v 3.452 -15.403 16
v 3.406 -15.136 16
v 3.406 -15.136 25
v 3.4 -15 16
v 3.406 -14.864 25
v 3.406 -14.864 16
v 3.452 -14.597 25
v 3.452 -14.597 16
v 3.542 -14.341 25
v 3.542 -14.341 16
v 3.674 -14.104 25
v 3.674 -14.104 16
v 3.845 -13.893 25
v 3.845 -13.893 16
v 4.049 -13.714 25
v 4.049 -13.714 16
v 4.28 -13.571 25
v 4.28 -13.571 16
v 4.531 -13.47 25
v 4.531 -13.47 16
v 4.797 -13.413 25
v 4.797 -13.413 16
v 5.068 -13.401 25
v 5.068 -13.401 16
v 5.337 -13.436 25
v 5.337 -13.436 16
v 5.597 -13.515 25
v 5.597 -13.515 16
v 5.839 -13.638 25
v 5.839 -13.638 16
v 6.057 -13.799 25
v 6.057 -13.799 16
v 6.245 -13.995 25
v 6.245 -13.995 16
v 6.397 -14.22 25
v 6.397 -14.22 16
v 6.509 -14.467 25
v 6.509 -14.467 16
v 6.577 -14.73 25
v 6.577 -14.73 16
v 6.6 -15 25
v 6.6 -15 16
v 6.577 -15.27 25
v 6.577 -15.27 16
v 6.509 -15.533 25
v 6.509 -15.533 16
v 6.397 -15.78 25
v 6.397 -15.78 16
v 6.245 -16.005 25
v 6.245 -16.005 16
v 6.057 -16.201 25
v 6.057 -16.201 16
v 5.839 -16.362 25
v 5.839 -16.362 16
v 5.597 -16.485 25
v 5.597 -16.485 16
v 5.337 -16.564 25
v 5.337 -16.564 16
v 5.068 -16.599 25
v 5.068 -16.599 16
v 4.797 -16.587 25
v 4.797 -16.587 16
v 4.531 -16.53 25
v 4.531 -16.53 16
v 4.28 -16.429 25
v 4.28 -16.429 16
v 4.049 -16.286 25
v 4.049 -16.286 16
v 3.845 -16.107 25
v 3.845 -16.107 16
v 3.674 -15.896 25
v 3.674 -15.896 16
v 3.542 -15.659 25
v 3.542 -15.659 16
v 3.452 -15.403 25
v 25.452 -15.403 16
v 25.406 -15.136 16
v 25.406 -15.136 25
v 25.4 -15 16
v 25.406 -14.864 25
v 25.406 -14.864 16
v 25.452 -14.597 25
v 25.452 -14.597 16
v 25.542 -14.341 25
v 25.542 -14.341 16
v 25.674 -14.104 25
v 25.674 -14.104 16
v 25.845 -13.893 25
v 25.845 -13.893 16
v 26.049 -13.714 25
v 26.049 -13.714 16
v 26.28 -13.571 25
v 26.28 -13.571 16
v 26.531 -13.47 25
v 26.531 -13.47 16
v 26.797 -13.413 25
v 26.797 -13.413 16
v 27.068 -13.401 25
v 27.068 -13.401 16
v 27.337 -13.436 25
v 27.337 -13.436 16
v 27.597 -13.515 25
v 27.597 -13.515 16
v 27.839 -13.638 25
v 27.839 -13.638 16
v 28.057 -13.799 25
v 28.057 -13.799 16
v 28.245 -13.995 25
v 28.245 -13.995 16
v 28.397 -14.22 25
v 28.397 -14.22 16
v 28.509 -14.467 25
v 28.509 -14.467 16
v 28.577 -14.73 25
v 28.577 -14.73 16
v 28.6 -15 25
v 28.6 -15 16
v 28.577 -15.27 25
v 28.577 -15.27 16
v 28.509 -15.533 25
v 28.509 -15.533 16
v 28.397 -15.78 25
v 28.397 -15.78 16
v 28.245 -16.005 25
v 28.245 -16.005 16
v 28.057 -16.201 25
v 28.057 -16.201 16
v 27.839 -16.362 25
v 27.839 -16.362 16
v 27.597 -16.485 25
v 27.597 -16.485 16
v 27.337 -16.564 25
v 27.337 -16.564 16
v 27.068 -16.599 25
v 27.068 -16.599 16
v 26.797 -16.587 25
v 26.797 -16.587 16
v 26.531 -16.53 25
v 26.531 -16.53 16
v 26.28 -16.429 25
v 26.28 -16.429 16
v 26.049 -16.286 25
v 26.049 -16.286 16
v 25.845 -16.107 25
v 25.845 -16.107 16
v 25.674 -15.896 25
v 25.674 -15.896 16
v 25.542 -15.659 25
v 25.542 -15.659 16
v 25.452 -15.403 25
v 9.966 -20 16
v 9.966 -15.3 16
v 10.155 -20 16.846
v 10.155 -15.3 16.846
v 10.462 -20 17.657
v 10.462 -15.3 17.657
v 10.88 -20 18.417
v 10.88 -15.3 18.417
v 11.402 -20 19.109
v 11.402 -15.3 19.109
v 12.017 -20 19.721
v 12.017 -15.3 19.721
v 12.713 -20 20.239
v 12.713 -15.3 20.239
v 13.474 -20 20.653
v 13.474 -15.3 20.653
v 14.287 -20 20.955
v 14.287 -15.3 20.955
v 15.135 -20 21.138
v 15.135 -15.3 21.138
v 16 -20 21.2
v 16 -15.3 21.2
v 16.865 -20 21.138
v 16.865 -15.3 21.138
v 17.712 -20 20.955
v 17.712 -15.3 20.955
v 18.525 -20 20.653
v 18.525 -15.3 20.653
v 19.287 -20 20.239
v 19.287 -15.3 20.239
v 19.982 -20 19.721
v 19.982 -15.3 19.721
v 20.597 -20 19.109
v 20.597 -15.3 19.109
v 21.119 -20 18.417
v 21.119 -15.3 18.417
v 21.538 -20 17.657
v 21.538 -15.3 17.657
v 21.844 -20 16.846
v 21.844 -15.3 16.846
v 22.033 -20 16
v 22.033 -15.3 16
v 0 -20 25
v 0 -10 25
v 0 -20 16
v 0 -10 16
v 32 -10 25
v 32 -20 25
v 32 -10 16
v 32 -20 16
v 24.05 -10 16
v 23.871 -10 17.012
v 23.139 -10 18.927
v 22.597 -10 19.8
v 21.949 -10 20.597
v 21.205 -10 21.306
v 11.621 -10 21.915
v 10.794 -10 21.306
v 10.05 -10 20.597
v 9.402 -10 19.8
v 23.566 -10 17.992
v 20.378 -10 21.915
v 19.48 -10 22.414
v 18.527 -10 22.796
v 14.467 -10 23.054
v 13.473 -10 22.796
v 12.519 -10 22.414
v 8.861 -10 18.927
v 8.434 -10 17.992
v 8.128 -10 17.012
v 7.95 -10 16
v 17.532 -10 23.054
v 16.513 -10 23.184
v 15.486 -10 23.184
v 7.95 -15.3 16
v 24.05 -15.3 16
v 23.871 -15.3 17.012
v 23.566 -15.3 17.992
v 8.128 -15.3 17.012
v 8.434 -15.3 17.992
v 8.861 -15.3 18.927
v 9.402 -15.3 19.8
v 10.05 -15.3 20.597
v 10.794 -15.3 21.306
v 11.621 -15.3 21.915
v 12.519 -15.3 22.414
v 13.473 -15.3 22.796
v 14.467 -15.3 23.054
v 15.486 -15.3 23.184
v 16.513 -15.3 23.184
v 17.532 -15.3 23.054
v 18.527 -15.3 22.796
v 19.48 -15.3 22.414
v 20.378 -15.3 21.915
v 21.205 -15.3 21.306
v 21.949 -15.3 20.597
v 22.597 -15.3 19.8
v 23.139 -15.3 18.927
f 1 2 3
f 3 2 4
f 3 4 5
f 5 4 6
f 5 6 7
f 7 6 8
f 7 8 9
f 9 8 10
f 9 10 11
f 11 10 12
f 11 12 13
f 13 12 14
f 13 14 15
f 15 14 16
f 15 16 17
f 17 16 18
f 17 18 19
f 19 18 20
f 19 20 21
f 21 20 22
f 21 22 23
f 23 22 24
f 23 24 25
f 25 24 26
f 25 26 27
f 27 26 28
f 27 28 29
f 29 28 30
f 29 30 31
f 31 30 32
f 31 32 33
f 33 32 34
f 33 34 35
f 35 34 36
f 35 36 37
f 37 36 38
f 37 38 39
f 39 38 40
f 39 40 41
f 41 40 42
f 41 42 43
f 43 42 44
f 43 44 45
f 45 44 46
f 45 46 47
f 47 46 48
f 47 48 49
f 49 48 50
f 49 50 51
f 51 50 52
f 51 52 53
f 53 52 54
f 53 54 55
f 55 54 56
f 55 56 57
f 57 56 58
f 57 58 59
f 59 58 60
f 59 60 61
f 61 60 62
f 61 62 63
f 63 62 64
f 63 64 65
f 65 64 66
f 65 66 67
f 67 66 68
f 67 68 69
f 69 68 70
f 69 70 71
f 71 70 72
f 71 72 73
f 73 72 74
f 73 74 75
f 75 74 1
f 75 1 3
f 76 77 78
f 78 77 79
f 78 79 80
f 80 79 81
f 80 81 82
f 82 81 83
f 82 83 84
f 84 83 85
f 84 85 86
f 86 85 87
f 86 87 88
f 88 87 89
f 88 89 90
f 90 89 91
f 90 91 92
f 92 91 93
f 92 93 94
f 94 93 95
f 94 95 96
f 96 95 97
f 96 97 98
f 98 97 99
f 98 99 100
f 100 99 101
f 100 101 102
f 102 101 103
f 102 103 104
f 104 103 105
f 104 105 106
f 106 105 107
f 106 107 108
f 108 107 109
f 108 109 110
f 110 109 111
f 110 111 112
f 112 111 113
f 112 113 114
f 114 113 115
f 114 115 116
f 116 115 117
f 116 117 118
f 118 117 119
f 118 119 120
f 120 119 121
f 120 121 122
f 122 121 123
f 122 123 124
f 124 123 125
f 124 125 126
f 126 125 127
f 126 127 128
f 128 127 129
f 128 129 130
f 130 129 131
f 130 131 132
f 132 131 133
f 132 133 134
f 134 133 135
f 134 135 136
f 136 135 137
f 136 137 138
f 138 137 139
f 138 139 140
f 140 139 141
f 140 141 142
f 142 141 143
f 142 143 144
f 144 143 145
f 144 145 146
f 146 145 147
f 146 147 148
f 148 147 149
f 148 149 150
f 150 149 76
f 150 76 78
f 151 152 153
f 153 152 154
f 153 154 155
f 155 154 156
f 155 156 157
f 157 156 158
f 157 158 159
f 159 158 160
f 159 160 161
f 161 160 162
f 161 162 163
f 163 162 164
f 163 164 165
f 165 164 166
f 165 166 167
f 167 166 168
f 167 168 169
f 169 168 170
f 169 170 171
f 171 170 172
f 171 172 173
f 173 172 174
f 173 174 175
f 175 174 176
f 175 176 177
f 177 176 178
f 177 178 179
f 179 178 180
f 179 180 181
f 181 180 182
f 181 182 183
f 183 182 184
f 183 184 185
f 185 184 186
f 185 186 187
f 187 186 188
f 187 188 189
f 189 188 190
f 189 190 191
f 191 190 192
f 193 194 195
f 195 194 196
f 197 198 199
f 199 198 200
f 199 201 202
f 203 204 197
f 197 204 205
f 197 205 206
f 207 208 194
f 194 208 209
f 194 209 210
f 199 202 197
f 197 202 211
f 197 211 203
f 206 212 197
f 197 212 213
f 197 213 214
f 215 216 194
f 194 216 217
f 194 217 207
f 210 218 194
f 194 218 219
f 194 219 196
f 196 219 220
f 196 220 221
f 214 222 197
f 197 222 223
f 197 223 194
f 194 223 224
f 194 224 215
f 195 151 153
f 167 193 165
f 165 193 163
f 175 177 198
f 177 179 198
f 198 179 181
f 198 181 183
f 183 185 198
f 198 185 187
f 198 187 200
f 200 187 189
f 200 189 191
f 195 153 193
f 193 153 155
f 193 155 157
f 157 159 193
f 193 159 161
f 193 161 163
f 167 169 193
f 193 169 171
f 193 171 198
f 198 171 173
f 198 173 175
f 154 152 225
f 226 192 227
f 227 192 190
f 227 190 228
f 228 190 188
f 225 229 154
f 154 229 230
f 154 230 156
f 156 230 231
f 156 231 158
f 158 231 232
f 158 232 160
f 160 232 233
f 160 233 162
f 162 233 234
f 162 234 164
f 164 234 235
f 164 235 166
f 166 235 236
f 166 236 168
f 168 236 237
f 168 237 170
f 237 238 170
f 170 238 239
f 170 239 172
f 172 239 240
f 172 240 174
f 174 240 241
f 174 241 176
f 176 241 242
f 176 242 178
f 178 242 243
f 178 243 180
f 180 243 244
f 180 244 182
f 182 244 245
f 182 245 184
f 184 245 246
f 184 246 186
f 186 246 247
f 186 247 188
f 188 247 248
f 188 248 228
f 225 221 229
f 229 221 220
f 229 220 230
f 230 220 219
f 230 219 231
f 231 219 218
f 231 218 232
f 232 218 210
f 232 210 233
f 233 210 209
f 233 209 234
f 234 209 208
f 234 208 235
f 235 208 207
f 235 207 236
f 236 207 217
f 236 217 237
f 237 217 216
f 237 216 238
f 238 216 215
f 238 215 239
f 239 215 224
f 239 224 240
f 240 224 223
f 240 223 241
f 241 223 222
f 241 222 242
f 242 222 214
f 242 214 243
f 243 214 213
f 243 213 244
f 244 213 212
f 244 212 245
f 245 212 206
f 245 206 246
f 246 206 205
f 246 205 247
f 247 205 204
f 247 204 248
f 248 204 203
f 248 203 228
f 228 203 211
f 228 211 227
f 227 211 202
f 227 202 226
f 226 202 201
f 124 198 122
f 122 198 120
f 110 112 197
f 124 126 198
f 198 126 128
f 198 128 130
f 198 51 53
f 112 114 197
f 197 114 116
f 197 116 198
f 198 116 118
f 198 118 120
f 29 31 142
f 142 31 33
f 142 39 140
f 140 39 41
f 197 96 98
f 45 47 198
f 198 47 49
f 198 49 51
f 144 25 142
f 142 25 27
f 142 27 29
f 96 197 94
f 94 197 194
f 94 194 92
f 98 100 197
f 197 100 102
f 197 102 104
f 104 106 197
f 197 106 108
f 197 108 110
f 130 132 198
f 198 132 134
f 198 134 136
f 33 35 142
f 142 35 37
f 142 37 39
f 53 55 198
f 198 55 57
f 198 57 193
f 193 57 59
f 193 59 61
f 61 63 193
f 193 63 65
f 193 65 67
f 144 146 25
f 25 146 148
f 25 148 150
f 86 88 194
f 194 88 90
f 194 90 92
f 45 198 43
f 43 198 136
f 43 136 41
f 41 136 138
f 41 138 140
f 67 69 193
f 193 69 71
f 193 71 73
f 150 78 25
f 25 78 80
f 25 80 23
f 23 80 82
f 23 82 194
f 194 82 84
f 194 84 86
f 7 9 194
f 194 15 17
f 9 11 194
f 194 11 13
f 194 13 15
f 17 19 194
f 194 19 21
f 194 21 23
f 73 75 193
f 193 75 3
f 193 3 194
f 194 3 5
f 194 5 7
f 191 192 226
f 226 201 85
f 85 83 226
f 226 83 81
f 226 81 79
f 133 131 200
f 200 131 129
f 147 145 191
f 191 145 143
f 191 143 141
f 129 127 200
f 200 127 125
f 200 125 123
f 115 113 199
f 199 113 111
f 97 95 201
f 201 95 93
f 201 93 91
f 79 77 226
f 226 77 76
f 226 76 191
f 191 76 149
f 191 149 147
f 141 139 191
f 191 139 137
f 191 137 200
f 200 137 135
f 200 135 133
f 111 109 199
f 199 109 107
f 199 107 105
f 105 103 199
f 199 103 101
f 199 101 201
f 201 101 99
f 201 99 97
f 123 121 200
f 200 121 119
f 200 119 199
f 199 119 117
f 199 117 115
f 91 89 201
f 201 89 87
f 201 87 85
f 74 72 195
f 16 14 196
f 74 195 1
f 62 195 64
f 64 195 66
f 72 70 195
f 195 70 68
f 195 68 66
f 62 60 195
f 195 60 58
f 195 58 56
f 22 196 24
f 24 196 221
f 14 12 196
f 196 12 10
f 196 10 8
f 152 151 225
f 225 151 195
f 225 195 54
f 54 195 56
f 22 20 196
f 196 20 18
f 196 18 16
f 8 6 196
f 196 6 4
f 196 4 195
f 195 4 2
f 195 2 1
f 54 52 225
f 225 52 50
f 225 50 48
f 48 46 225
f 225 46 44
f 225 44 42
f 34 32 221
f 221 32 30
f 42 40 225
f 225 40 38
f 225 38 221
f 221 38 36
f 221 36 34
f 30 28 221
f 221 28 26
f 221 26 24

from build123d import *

# Parameters (mm, degrees)
SKETCH1_W           = 32
SKETCH1_H           = 27
SKETCH1_R           = 1.5
BOSS_EXTRUDE1_DEPTH = 25
SKETCH3_W           = 20
SKETCH3_H           = 10
SKETCH3_H_2         = 7
CUT_EXTRUDE1_DEPTH  = 33
SKETCH4_R           = 6.1
CUT_EXTRUDE6_DEPTH  = 18
SKETCH5_R           = 8.1
CUT_EXTRUDE7_DEPTH  = 5.3
SKETCH7_R           = 1.6
CUT_EXTRUDE8_DEPTH  = 26
CUT_EXTRUDE9_DEPTH  = 10
SKETCH10_W          = 32
SKETCH10_H          = 27
CUT_EXTRUDE10_DEPTH = 16


with BuildPart() as part:
    # Sketch1 → Boss-Extrude1 (new body)
    with BuildSketch(Plane.XY):
        with Locations((16, -13.5)):
            Rectangle(SKETCH1_W, SKETCH1_H)
        with Locations((8.5, -3.5)):
            Circle(SKETCH1_R, mode=Mode.SUBTRACT)
        with Locations((23.5, -3.5)):
            Circle(SKETCH1_R, mode=Mode.SUBTRACT)
        with Locations((8.5, -23.5)):
            Circle(SKETCH1_R, mode=Mode.SUBTRACT)
        with Locations((23.5, -23.5)):
            Circle(SKETCH1_R, mode=Mode.SUBTRACT)
    extrude(amount=BOSS_EXTRUDE1_DEPTH)

    # Sketch3 → Cut-Extrude1 (cut, through all)
    with BuildSketch(Plane.ZY):
        with Locations((15, -5)):
            Rectangle(SKETCH3_W, SKETCH3_H)
        with Locations((15, -23.5)):
            Rectangle(SKETCH3_W, SKETCH3_H_2)
    extrude(amount=-CUT_EXTRUDE1_DEPTH, mode=Mode.SUBTRACT)

    # Sketch4 → Cut-Extrude6 (cut, through all)
    with BuildSketch(Plane(origin=(0, -10, 0), x_dir=(1, 0, 0), z_dir=(0, 1, 0))):
        with Locations((15.999687497, -15.1)):
            Circle(SKETCH4_R)
    extrude(amount=-CUT_EXTRUDE6_DEPTH, mode=Mode.SUBTRACT)

    # Sketch5 → Cut-Extrude7 (cut)
    with BuildSketch(Plane(origin=(0, -10, 0), x_dir=(1, 0, 0), z_dir=(0, 1, 0))):
        with Locations((15.999687497, -15.1)):
            Circle(SKETCH5_R)
    extrude(amount=-CUT_EXTRUDE7_DEPTH, mode=Mode.SUBTRACT)

    # Sketch7 → Cut-Extrude8 (cut, through all)
    with BuildSketch(Plane.XY.offset(25)):
        with Locations((5, -15)):
            Circle(SKETCH7_R)
        with Locations((27, -15)):
            Circle(SKETCH7_R)
    extrude(amount=-CUT_EXTRUDE8_DEPTH, mode=Mode.SUBTRACT)

    # Sketch9 → Cut-Extrude9 (cut)
    with BuildSketch(Plane(origin=(0, 0, 0), x_dir=(-1, 0, 0), z_dir=(0, 0, -1))):
        Polygon((-29.138778877, -12.825574808), (-29.952496893, -15.765024245), (-27.813718016, -17.939449437), (-24.861221123, -17.174425192), (-24.047503107, -14.234975755), (-26.186281984, -12.060550563), align=None)
        Polygon((-5, -11.95), (-7.641377482, -13.475), (-7.641377482, -16.525), (-5, -18.05), (-2.358622518, -16.525), (-2.358622518, -13.475), align=None)
    extrude(amount=-CUT_EXTRUDE9_DEPTH, mode=Mode.SUBTRACT)

    # Sketch10 → Cut-Extrude10 (cut)
    with BuildSketch(Plane(origin=(0, 0, 0), x_dir=(-1, 0, 0), z_dir=(0, 0, -1))):
        with Locations((-16, -13.5)):
            Rectangle(SKETCH10_W, SKETCH10_H)
    extrude(amount=-CUT_EXTRUDE10_DEPTH, mode=Mode.SUBTRACT)


solid = part.part
